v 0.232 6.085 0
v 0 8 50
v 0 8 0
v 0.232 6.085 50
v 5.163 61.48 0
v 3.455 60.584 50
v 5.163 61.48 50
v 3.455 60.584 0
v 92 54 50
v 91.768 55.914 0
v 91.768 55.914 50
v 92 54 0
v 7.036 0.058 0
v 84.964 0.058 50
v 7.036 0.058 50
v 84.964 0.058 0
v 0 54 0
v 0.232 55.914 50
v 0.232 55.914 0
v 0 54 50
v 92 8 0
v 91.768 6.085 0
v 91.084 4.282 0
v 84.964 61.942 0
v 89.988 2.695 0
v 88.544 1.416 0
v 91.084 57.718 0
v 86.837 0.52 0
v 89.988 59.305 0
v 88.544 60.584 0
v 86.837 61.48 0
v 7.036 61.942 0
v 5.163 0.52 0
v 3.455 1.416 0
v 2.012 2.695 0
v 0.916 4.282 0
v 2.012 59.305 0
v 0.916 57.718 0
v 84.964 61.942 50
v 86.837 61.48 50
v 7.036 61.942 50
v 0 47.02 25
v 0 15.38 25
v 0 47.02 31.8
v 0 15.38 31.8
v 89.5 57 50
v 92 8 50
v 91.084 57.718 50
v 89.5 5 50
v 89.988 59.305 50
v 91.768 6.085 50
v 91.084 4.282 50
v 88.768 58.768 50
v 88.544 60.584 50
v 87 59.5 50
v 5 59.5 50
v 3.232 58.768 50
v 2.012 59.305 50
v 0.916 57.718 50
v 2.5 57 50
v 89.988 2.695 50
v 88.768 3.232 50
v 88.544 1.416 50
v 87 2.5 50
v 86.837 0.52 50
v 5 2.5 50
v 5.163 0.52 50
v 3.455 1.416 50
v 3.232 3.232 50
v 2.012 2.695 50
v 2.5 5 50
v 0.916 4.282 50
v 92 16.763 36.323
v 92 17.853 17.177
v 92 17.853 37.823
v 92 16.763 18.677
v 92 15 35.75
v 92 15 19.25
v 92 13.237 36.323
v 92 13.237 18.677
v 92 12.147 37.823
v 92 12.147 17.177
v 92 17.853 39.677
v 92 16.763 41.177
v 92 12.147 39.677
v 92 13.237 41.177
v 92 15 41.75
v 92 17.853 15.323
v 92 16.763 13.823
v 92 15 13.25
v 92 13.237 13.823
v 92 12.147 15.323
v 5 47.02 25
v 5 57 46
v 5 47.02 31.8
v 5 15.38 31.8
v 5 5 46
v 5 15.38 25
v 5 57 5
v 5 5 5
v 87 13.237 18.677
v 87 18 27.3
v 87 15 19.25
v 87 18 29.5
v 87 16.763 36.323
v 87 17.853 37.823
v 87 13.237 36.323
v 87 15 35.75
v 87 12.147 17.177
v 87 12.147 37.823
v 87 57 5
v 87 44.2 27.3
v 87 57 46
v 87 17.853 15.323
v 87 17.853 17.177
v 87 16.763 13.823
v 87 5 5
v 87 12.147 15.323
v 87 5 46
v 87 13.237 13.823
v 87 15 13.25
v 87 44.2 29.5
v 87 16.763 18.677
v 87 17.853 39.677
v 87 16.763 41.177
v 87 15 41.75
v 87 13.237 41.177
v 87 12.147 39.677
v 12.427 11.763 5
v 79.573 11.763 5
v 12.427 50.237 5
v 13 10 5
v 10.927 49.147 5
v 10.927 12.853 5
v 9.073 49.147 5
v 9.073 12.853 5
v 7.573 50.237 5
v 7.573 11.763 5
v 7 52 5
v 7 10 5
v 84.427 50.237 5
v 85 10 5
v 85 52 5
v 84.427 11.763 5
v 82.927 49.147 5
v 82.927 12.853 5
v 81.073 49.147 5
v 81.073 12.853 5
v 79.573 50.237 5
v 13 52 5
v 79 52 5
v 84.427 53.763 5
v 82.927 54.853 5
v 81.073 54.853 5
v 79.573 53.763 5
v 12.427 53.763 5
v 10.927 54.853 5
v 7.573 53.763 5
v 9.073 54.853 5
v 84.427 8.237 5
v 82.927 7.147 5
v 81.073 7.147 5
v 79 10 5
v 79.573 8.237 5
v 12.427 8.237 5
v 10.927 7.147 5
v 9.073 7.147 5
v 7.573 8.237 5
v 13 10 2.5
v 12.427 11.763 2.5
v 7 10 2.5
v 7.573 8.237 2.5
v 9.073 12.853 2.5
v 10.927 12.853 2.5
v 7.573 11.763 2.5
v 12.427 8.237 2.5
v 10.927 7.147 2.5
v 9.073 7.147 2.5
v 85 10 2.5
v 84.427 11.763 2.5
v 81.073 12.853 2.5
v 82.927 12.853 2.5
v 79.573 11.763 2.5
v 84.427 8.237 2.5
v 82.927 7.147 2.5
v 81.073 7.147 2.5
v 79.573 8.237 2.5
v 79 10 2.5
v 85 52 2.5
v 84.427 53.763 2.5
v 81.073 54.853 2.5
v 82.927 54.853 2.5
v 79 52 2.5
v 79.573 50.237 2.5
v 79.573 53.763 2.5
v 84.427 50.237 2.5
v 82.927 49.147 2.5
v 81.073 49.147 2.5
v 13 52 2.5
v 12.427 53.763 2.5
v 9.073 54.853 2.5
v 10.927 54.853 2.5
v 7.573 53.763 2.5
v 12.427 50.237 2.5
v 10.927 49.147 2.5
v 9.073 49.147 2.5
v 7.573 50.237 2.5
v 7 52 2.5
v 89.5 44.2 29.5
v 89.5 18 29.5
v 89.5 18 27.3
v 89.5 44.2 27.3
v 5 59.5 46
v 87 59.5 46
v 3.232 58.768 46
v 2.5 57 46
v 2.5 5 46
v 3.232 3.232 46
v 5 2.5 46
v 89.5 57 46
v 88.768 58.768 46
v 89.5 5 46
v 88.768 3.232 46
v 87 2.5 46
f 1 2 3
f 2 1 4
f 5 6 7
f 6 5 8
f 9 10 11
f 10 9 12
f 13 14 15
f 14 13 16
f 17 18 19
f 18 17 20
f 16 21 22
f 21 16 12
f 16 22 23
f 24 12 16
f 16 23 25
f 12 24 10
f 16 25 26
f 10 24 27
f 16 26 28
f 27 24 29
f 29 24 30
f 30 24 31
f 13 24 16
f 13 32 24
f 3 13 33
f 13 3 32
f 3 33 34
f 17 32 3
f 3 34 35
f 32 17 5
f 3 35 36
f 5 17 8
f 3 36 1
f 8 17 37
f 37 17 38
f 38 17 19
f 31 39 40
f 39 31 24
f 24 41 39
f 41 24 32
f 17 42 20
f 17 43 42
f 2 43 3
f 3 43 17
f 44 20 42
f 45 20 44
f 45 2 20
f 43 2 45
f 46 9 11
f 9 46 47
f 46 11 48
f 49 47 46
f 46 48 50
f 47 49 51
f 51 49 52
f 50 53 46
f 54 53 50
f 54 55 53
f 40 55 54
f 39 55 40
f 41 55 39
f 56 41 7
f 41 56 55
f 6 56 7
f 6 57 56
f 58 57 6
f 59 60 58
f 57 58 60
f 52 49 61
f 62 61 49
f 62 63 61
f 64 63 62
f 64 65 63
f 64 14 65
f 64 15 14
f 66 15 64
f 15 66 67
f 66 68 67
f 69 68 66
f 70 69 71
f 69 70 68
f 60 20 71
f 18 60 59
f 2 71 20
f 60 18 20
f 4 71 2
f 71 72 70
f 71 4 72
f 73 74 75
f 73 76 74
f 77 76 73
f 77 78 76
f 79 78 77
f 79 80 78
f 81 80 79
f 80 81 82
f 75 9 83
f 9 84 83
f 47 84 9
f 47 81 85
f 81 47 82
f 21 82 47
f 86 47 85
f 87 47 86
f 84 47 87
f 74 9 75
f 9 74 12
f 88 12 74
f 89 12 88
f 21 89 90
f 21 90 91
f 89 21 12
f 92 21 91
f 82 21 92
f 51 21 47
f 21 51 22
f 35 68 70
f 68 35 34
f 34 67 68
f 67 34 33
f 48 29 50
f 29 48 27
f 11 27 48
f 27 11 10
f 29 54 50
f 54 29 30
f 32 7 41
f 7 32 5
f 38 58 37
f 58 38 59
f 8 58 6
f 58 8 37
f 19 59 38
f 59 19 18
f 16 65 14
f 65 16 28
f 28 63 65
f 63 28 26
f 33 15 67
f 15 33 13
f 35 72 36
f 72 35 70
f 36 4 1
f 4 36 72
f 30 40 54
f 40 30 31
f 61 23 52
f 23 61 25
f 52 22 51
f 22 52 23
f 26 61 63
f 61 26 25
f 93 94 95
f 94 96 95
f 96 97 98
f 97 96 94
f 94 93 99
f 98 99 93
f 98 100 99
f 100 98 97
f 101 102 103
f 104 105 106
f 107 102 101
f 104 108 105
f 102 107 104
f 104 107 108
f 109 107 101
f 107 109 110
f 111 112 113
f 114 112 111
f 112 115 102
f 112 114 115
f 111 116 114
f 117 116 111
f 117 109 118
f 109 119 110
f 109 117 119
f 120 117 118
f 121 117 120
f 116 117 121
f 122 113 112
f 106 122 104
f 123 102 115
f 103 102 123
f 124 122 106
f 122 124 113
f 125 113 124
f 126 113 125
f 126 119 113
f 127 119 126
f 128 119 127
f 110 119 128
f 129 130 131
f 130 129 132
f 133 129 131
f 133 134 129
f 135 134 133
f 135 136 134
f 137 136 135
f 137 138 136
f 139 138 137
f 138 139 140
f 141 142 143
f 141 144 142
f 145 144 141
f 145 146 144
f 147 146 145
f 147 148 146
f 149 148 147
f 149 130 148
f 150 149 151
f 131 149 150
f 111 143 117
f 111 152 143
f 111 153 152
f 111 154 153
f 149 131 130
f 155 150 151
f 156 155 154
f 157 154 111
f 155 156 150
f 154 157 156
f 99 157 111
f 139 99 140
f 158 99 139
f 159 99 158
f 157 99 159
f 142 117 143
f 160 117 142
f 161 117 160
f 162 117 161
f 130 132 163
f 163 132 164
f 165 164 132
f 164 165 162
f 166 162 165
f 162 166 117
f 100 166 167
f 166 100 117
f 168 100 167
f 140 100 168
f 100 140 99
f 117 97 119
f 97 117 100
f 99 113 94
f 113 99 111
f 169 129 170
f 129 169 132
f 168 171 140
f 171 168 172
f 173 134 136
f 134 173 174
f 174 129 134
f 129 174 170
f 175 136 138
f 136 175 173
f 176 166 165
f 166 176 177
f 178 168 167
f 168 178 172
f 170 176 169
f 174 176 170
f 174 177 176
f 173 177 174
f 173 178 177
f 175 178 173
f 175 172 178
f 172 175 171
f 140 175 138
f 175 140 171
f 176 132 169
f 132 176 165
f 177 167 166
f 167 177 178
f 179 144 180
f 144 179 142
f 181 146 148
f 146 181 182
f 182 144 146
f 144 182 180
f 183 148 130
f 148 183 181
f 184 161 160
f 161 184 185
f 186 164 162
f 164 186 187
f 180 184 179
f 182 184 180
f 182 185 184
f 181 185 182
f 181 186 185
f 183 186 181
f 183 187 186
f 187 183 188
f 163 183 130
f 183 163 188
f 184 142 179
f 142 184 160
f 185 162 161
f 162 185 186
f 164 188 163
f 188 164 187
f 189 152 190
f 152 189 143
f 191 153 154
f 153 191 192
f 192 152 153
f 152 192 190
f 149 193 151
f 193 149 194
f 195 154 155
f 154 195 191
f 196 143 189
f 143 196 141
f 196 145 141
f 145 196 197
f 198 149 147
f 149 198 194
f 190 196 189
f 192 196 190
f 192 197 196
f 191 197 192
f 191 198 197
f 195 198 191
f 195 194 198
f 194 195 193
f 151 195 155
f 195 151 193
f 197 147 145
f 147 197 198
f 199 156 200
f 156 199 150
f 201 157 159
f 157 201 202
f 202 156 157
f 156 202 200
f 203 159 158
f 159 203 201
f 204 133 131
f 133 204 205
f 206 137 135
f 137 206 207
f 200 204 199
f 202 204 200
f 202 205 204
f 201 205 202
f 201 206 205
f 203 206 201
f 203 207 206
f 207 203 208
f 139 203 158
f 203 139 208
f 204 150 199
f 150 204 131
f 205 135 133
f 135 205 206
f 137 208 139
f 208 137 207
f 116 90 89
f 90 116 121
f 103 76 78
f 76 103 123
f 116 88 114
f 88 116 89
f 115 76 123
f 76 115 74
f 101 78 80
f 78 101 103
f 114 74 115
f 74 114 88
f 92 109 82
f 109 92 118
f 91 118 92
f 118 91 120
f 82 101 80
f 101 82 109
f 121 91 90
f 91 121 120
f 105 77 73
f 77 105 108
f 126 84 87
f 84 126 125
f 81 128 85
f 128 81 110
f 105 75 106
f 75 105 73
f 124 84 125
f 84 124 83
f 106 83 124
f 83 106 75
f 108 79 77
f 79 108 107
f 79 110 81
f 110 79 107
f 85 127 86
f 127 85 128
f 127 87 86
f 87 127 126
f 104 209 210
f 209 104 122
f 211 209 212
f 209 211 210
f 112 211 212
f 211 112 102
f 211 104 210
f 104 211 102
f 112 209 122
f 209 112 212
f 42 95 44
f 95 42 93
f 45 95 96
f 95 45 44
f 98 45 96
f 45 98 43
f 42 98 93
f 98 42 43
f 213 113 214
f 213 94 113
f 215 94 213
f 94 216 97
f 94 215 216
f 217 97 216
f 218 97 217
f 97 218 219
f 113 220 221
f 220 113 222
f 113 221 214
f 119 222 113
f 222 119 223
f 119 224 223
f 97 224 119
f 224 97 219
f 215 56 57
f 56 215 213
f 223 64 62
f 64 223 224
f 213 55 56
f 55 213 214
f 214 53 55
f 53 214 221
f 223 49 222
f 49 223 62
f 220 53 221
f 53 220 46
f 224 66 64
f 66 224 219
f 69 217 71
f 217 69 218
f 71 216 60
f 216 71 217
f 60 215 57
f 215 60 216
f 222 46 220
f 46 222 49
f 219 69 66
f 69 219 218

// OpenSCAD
// file: open_box.scad
/////////////////////////////////////////////////////////////////////////////////
// Module for a open box with rounded edges.
//
// Author: 		Maximilian Stiefel
// Last modification: 	26.04.3017
/////////////////////////////////////////////////////////////////////////////////

module open_box(width, length, height, thickness)
{

	/////////////////////////////////////////////////////////////////////////
	// Vars
	/////////////////////////////////////////////////////////////////////////
	edge_rounding = 8;
	compensation = 2*abs(edge_rounding-thickness);

	/////////////////////////////////////////////////////////////////////////
	// Action
	/////////////////////////////////////////////////////////////////////////
	translate([0, 0, 0]) difference(){		
		// Hull 4 cylinders which are compensated against the thickness
		// so the actual desired thickness/2 and edge rounding is always achieved.
		hull(){
			// x=0, y=0
			translate([edge_rounding, edge_rounding, 0])
				cylinder(r = edge_rounding, h = height + thickness);
			// x=width, y=0
			translate([width + edge_rounding - compensation, edge_rounding, 0])
				cylinder(r = edge_rounding, h = height + thickness);
			// x=0, y=length
			translate([edge_rounding, length + edge_rounding - compensation,0])
				cylinder(r = edge_rounding, h = height + thickness);
			//x=width, y=length
			translate([width + edge_rounding - compensation, length + edge_rounding - compensation,0])
				cylinder(r = edge_rounding, h = height + thickness);
		}

		translate([thickness, thickness, thickness])
			cube([width, length, height + 1]);
	}
}
// main file
/////////////////////////////////////////////////////////////////////////////////
// Housing box for UppSense first tries.
//
// Author:              Maximilian Stiefel
// Last modification:   26.04.2017
/////////////////////////////////////////////////////////////////////////////////

use <open_box.scad>

/////////////////////////////////////////////////////////////////////////////////
// Vars
/////////////////////////////////////////////////////////////////////////////////
allowance_pcb = 1;
width = 50 + 2*allowance_pcb; 
length = 80 + 2*allowance_pcb;
height = 45;
thickness = 5;

lid_depth = 5;

bolt_diameter = 6;		// According to the Farnell datasheet
bolt_spacing = 5;

my_color = "DarkRed";

allowance_glass = 0.2;
allowance_adapter = 0.2;
glass_width = 26 + allowance_glass;
glass_height = 2 + allowance_glass;
glass_length = 76 + allowance_glass;

slot = 3;
adapter_length = 2 + 5 + 4 + slot; // 2*allowance_pcb + thickness + distance(glass_slide, wall_inside) + slot;

cables_diameter = 3;

/////////////////////////////////////////////////////////////////////////////////
// Action
/////////////////////////////////////////////////////////////////////////////////
difference(){

	// Using my open box module for creating a simple box 
	color(my_color, 0.8)
		open_box(length, width, height, thickness);
	
	// Creating a depening for the lid
	color(my_color, 0.9)
	translate([thickness, thickness, height+1])
	hull()
	{
		cylinder(r=thickness/2, h=lid_depth+1);
		translate([0, width, 0])
		cylinder(r=thickness/2, h=lid_depth+1);
		translate([length, 0, 0])
		cylinder(r=thickness/2, h=lid_depth+1);
		translate([length, width, 0])
		cylinder(r=thickness/2, h=lid_depth+1);

	}
	// If it shall not be round
	//cube([length + thickness, width + thickness, lid_depth+1]);	
		

	// Cylindric holes for the PCBs
	color(my_color, 1.0) translate([0, 0, thickness/2]){
		translate([thickness + bolt_spacing, thickness + bolt_spacing, 0])
			cylinder(r=bolt_diameter/2, h=thickness/2+1);
		translate([length + thickness - bolt_spacing, thickness + bolt_spacing, 0])
			cylinder(r=bolt_diameter/2, h=thickness/2+1);
		translate([length + thickness - bolt_spacing, width + thickness - bolt_spacing, 0])
			cylinder(r=bolt_diameter/2, h=thickness/2+1);
		translate([thickness + bolt_spacing, width + thickness - bolt_spacing, 0])
			cylinder(r=bolt_diameter/2, h=thickness/2+1);
	}

	// Cylindric holes for cables
	color(my_color, 1.0) union(){
		translate([thickness + length - 1, 3*thickness, thickness + (1/4)*height])
		rotate([0, 90, 0])
		cylinder(r=cables_diameter, h=thickness + 2);

		translate([thickness + length - 1, 3*thickness, thickness + (3/4)*height])
		rotate([0, 90, 0])
		cylinder(r=cables_diameter, h=thickness + 2);
	}

	// Slots for the glass slide	
	color(my_color, 0.6) union(){
		// Slots for glass slide
		// Slot in the back
		//translate([length + thickness/2, thickness + (width - glass_width)/2, (height + thickness)/2 - glass_height])
		translate([length + thickness/2, -(glass_width-1.2*glass_width)/2 + thickness + (width - 1.2*glass_width + allowance_adapter)/2, (3*glass_height + allowance_adapter - glass_height)/2 +(height + thickness)/2])
		cube([thickness, glass_width, glass_height]);
		// Slot in the front
		translate([thickness + 1, thickness + (width - 1.2*glass_width + allowance_adapter)/2, (height + thickness)/2])
		rotate([0, 0, 90])
		cube([1.2*glass_width + allowance_adapter, thickness + 2, 3*glass_height + allowance_adapter]);			
	}
}

/////////////////////////////////////////////////////////////////////////////////
// Import other models
/////////////////////////////////////////////////////////////////////////////////
// Lid
*color(my_color, 0.8)
translate([thickness/2, thickness/2, height]) 
import("lid.stl");

// Adapter
*color(my_color, 0.8)
translate([-30,thickness + (width - 1.2*glass_width)/2,(height + thickness)/2]) 
rotate([0, 0, 270])
import("adapter.stl");
